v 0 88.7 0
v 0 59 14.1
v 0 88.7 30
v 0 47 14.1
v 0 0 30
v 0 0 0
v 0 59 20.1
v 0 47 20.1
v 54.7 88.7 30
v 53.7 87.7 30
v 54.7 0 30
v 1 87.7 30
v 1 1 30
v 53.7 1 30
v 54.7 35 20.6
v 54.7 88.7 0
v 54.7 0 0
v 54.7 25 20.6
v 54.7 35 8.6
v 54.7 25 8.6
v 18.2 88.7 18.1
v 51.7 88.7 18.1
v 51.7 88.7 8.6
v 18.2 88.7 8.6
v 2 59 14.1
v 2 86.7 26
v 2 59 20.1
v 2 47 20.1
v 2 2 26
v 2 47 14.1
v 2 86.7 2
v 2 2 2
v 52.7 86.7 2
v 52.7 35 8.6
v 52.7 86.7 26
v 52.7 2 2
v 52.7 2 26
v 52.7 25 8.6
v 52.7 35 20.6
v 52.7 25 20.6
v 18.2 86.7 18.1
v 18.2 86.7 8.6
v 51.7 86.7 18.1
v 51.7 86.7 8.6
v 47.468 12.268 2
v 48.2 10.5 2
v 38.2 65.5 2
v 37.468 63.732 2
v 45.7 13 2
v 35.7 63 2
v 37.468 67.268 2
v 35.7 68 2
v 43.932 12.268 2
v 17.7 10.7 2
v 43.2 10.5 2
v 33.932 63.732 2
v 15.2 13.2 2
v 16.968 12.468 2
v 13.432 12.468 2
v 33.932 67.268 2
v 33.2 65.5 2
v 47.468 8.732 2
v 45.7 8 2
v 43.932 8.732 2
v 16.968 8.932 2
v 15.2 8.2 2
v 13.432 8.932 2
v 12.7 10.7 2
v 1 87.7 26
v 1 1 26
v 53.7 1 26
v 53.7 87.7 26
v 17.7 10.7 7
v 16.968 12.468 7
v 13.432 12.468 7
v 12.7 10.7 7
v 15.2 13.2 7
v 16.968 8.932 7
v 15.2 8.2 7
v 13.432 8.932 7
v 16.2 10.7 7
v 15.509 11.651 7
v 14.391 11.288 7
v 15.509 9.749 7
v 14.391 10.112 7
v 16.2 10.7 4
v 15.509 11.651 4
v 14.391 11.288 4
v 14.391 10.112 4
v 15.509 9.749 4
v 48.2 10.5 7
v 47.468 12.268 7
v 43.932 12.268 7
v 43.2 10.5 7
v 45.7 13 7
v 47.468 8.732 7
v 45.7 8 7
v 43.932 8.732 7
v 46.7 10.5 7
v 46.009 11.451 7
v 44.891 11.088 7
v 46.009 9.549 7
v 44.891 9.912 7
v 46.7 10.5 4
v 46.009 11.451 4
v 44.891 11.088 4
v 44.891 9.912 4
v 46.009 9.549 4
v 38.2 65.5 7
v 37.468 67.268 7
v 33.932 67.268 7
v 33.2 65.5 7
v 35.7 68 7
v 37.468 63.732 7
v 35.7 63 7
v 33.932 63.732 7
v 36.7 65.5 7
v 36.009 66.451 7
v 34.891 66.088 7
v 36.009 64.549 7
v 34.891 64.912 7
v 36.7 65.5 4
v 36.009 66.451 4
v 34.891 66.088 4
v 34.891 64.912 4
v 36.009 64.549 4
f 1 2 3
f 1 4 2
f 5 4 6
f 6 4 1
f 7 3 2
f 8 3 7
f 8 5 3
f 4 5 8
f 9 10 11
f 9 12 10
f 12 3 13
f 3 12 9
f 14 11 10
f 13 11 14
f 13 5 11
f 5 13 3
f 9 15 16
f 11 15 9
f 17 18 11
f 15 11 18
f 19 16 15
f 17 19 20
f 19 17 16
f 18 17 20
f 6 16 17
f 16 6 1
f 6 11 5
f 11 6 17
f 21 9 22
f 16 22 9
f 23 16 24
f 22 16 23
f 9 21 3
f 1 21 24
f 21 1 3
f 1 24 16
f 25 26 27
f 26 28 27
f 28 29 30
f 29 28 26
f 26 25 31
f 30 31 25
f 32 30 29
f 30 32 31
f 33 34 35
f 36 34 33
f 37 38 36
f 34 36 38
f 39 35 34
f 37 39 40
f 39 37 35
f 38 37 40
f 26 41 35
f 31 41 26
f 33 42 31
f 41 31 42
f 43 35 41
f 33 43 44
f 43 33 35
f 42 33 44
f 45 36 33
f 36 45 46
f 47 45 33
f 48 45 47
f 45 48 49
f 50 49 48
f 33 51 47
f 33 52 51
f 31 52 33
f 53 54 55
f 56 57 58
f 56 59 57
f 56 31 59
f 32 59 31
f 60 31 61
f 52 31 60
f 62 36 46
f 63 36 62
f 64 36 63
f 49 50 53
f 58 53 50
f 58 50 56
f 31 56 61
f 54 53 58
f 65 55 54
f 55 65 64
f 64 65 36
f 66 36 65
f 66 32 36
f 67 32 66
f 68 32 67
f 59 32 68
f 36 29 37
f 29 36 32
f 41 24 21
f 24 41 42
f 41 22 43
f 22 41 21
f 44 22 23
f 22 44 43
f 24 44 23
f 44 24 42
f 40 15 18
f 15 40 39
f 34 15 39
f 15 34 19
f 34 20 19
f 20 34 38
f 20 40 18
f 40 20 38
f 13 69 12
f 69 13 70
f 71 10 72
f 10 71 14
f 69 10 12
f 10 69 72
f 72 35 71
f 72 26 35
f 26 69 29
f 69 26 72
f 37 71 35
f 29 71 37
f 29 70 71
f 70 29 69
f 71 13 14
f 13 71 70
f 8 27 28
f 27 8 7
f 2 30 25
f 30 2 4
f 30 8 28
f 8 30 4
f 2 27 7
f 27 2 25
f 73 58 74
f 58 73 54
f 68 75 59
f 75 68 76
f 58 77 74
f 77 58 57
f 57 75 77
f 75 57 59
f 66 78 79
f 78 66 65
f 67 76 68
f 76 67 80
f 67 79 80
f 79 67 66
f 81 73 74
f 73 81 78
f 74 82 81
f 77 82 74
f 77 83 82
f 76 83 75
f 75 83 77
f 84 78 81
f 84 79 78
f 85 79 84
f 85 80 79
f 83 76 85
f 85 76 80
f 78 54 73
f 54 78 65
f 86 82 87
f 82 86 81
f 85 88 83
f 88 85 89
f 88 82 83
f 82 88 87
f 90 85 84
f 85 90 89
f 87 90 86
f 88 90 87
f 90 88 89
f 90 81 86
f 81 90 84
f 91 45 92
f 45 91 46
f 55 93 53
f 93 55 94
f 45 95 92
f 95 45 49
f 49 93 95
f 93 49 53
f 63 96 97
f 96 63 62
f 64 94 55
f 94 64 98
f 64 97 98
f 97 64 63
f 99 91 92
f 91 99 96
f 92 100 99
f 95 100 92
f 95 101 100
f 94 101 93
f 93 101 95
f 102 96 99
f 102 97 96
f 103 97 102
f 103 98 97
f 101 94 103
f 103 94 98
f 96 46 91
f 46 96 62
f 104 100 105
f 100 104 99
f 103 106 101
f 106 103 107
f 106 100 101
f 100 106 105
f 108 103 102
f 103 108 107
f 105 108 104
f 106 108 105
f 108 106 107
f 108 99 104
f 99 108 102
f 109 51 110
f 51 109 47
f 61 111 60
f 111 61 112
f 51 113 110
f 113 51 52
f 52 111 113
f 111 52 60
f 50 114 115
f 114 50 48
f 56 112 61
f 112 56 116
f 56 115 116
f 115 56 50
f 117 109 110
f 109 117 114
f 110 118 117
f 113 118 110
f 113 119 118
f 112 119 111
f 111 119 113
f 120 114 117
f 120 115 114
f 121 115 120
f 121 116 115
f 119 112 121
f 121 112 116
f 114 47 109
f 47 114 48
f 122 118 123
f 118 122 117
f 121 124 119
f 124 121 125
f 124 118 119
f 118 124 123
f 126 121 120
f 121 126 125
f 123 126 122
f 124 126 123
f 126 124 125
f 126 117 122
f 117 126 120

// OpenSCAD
thickness=2;
widthSCD=77.7;
depthSCD=45.7;

spacingLeft=3;
spacingRight=2;
spacingDown=3;
spacingUp=4;

heightBottom=24+6;

thicknessBoard=1.6;
heightBoltHolder=5;

heightConnectorHole=9+0.5;
widthConnectorHole=33+0.5;

widthPowerSupplyHole=9+1;
heightPowerSupplyHole=11+1;

heightFitting=4;

spacingPiLeft=0.5;
spacingPiUp=4;

heightBoltHolder=5;
radiusBoltHolder=2.5;

heightPi=23.4;

width=widthSCD+spacingDown+spacingUp+2*thickness;   //y
depth=depthSCD+spacingLeft+spacingRight+2*thickness; //x


module bottomPlate(height,width,depth){
    difference(){
        cube([depth,width,height]);
        translate([thickness,thickness,thickness]){
            cube([depth-2*thickness,width-2*thickness,height]);
        }
        
        //10x2 connector hole
        translate([depth-thickness-widthConnectorHole-1,width-thickness-       spacingUp,thickness+heightBoltHolder+thicknessBoard]){
            cube([widthConnectorHole,2*thickness + spacingUp,                   heightConnectorHole]);
        }
        
        //power supply hole
        translate([depth-spacingRight-2*thickness,thickness+        spacingDown+20,thickness+heightBoltHolder+              thicknessBoard]){
            cube([4*thickness,widthPowerSupplyHole,                        heightPowerSupplyHole]);
            }
        
        //fitting cutout
        translate([thickness/2,thickness/2,heightBottom-heightFitting]){
            cube([depth-thickness,width-thickness,heightFitting+1]);
        }
        
        //raspberry pi mini usb 
        translate([depth-2*thickness,width-thickness-spacingPiUp-6.5,
            thickness+thicknessBoard+heightBoltHolder+heightPi]){
          cube([thickness*4,7.5,3+1]);
        }
        
        translate([depth-2*thickness,width-thickness-spacingPiUp-6.5-7.5-4.2,         thickness+thicknessBoard+heightBoltHolder+heightPi]){
          cube([thickness*4,7.5,3+1]);
        }
        
        //switch on/off
         translate([-1,thickness+spacingDown+42,thickness+          heightBoltHolder+thicknessBoard+5.5]){
            cube([thickness*4,12,6]);
        }
        
    }
    
}


module boltHolder(height,outer_radius,inner_radius,depth){
     translate([0,0,height/2]){
        difference(){
            cylinder(h=height,r=outer_radius,center=true);
            translate([0,0,height-depth]){
                cylinder(h=height,r=inner_radius,center=true);
            }   
        }
     }
}


union(){
    
    
    //bolt holder for mounting the board
    bottomPlate(heightBottom,width,depth);
    translate([depth-thickness-spacingRight-35.5,thickness+spacingDown+5.7,thickness-1]){
       boltHolder(heightBoltHolder+1,radiusBoltHolder,1,3); 
    }   
    
    translate([depth-thickness-spacingRight-5,thickness+spacingDown+5.5,thickness-1]){
       boltHolder(heightBoltHolder+1,radiusBoltHolder,1,3); 
    } 
    
    translate([depth-thickness-spacingRight-15,thickness+spacingDown+60.5,thickness-1]){
       boltHolder(heightBoltHolder+1,radiusBoltHolder,1,3); 
    }
}
